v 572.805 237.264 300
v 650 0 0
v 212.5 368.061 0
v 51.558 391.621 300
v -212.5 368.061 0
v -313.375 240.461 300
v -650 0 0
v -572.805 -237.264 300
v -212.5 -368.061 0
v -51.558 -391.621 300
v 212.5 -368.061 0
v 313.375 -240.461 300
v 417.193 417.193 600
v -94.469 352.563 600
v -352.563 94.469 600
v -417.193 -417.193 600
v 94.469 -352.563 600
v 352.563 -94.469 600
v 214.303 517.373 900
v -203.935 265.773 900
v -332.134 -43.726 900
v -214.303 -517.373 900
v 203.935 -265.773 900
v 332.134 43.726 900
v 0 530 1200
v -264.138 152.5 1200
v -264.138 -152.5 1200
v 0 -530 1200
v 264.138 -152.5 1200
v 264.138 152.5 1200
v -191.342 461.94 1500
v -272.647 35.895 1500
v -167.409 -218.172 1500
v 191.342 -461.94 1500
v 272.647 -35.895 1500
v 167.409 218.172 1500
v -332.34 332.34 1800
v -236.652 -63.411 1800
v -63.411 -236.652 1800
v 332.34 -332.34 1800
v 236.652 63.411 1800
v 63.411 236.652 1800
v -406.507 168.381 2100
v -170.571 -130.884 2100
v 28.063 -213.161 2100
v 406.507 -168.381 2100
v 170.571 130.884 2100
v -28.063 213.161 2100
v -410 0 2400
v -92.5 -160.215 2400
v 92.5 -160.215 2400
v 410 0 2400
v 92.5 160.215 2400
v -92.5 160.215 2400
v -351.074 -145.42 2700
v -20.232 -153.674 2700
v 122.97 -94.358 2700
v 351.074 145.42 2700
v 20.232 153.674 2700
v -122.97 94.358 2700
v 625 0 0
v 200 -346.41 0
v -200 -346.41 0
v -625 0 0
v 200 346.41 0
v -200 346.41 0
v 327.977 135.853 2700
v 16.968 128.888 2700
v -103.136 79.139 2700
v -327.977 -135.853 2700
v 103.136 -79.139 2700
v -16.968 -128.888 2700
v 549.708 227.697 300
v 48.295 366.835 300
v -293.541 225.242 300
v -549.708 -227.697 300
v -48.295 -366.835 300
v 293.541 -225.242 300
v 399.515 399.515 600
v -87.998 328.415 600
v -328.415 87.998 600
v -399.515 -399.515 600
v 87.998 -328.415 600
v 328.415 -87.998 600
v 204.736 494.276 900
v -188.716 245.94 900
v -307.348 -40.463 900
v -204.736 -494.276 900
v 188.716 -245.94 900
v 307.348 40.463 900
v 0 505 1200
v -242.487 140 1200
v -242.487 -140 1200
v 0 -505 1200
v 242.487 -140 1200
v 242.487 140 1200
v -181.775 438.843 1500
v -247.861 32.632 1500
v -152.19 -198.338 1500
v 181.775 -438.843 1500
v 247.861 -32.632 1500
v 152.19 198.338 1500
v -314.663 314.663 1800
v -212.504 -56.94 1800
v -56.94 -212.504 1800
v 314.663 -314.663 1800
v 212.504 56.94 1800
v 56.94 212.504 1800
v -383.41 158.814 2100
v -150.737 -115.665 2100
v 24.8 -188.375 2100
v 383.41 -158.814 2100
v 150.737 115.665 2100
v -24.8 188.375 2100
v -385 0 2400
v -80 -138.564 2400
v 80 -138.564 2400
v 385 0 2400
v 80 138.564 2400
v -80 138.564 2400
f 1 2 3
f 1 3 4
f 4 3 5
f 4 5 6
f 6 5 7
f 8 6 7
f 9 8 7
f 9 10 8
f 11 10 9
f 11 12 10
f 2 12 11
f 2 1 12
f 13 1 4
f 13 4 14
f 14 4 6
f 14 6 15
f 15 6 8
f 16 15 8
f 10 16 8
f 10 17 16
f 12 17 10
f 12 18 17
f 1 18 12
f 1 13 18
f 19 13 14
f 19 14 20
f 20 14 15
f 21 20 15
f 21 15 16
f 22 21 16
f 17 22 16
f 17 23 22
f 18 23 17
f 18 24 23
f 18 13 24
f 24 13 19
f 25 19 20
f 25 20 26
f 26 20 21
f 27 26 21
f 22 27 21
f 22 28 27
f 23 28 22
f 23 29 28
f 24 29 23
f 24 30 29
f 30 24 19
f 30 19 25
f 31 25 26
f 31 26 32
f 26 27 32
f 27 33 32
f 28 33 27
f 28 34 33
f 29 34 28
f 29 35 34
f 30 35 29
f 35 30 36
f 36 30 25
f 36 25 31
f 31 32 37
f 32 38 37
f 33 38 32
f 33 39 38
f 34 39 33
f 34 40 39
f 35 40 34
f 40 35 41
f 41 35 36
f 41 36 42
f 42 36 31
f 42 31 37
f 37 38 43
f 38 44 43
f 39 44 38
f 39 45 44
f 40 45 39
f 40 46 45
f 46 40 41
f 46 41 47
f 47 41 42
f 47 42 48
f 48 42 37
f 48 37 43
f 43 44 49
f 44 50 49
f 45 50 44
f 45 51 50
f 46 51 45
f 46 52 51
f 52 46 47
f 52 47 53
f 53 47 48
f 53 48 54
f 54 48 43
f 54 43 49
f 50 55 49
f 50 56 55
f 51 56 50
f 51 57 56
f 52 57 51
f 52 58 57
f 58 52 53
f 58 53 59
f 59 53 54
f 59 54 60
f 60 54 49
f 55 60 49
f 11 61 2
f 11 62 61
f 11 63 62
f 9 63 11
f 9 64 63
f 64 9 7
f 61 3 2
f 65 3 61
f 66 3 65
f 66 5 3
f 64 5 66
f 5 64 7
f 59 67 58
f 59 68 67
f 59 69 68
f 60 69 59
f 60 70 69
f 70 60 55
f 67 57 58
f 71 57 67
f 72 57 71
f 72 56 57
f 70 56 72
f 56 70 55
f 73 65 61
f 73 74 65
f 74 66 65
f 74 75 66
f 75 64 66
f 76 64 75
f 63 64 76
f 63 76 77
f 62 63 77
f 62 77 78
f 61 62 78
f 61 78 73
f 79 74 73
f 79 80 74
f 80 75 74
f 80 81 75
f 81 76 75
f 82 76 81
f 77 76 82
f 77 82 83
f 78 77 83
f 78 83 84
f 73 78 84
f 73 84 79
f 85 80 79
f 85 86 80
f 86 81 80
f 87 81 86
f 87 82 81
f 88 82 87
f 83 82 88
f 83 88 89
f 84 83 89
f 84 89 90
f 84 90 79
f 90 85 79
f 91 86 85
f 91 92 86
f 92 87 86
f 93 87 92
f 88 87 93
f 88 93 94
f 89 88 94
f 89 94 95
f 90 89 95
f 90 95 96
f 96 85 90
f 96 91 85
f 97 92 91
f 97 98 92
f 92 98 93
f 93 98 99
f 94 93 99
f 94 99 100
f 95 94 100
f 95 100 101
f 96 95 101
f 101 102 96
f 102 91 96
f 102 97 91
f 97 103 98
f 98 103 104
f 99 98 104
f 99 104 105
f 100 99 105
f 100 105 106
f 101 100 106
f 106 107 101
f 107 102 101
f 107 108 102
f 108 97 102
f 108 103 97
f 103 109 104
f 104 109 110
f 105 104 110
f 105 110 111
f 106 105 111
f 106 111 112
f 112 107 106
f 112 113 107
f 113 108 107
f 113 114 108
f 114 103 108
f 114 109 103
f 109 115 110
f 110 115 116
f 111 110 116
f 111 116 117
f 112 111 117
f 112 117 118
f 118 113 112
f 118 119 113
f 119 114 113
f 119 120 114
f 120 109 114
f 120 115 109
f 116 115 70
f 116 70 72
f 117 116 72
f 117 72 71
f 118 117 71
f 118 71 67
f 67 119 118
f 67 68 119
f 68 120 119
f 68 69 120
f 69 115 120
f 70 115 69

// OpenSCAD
difference() {
	polyhedron(faces = [[0, 6, 1], [1, 6, 7], [1, 7, 2], [2, 7, 8], [2, 8, 3], [3, 8, 9], [3, 9, 4], [4, 9, 10], [4, 10, 5], [5, 10, 11], [5, 11, 0], [0, 11, 6], [6, 12, 7], [7, 12, 13], [7, 13, 8], [8, 13, 14], [8, 14, 9], [9, 14, 15], [9, 15, 10], [10, 15, 16], [10, 16, 11], [11, 16, 17], [11, 17, 6], [6, 17, 12], [12, 18, 13], [13, 18, 19], [13, 19, 14], [14, 19, 20], [14, 20, 15], [15, 20, 21], [15, 21, 16], [16, 21, 22], [16, 22, 17], [17, 22, 23], [17, 23, 12], [12, 23, 18], [18, 24, 19], [19, 24, 25], [19, 25, 20], [20, 25, 26], [20, 26, 21], [21, 26, 27], [21, 27, 22], [22, 27, 28], [22, 28, 23], [23, 28, 29], [23, 29, 18], [18, 29, 24], [24, 30, 25], [25, 30, 31], [25, 31, 26], [26, 31, 32], [26, 32, 27], [27, 32, 33], [27, 33, 28], [28, 33, 34], [28, 34, 29], [29, 34, 35], [29, 35, 24], [24, 35, 30], [30, 36, 31], [31, 36, 37], [31, 37, 32], [32, 37, 38], [32, 38, 33], [33, 38, 39], [33, 39, 34], [34, 39, 40], [34, 40, 35], [35, 40, 41], [35, 41, 30], [30, 41, 36], [36, 42, 37], [37, 42, 43], [37, 43, 38], [38, 43, 44], [38, 44, 39], [39, 44, 45], [39, 45, 40], [40, 45, 46], [40, 46, 41], [41, 46, 47], [41, 47, 36], [36, 47, 42], [42, 48, 43], [43, 48, 49], [43, 49, 44], [44, 49, 50], [44, 50, 45], [45, 50, 51], [45, 51, 46], [46, 51, 52], [46, 52, 47], [47, 52, 53], [47, 53, 42], [42, 53, 48], [48, 54, 49], [49, 54, 55], [49, 55, 50], [50, 55, 56], [50, 56, 51], [51, 56, 57], [51, 57, 52], [52, 57, 58], [52, 58, 53], [53, 58, 59], [53, 59, 48], [48, 59, 54], [1, 60, 0], [54, 61, 55], [2, 60, 1], [55, 61, 56], [3, 60, 2], [56, 61, 57], [4, 60, 3], [57, 61, 58], [5, 60, 4], [58, 61, 59], [0, 60, 5], [59, 61, 54]], points = [[650.0000000000, 0.0000000000, 0.0000000000], [212.5000000000, 368.0607966084, 0.0000000000], [-212.5000000000, 368.0607966084, 0.0000000000], [-650.0000000000, 0.0000000000, 0.0000000000], [-212.5000000000, -368.0607966084, 0.0000000000], [212.5000000000, -368.0607966084, 0.0000000000], [572.8053101570, 237.2637280664, 300.0000000000], [51.5578459269, 391.6207202427, 300.0000000000], [-313.3745694150, 240.4607644584, 300.0000000000], [-572.8053101570, -237.2637280664, 300.0000000000], [-51.5578459269, -391.6207202427, 300.0000000000], [313.3745694150, -240.4607644584, 300.0000000000], [417.1930009001, 417.1930009001, 600.0000000000], [-94.4689514624, 352.5629265955, 600.0000000000], [-352.5629265955, 94.4689514624, 600.0000000000], [-417.1930009001, -417.1930009001, 600.0000000000], [94.4689514624, -352.5629265955, 600.0000000000], [352.5629265955, -94.4689514624, 600.0000000000], [214.3027221245, 517.3725382063, 900.0000000000], [-203.9350787179, 265.7733689976, 900.0000000000], [-332.1340285602, -43.7262743937, 900.0000000000], [-214.3027221245, -517.3725382063, 900.0000000000], [203.9350787179, -265.7733689976, 900.0000000000], [332.1340285602, 43.7262743937, 900.0000000000], [0.0000000000, 530.0000000000, 1200.0000000000], [-264.1377481543, 152.5000000000, 1200.0000000000], [-264.1377481543, -152.5000000000, 1200.0000000000], [-0.0000000000, -530.0000000000, 1200.0000000000], [264.1377481543, -152.5000000000, 1200.0000000000], [264.1377481543, 152.5000000000, 1200.0000000000], [-191.3417161825, 461.9397662556, 1500.0000000000], [-272.6473368778, 35.8947028605, 1500.0000000000], [-167.4093929774, -218.1721685801, 1500.0000000000], [191.3417161825, -461.9397662556, 1500.0000000000], [272.6473368778, -35.8947028605, 1500.0000000000], [167.4093929774, 218.1721685801, 1500.0000000000], [-332.3401871577, 332.3401871577, 1800.0000000000], [-236.6518274408, -63.4106660501, 1800.0000000000], [-63.4106660501, -236.6518274408, 1800.0000000000], [332.3401871577, -332.3401871577, 1800.0000000000], [236.6518274408, 63.4106660501, 1800.0000000000], [63.4106660501, 236.6518274408, 1800.0000000000], [-406.5069943050, 168.3807102406, 2100.0000000000], [-170.5709681626, -130.8837072369, 2100.0000000000], [28.0631313273, -213.1606451954, 2100.0000000000], [406.5069943050, -168.3807102406, 2100.0000000000], [170.5709681626, 130.8837072369, 2100.0000000000], [-28.0631313273, 213.1606451954, 2100.0000000000], [-410.0000000000, 0.0000000000, 2400.0000000000], [-92.5000000000, -160.2146997001, 2400.0000000000], [92.5000000000, -160.2146997001, 2400.0000000000], [410.0000000000, -0.0000000000, 2400.0000000000], [92.5000000000, 160.2146997001, 2400.0000000000], [-92.5000000000, 160.2146997001, 2400.0000000000], [-351.0742223543, -145.4197042987, 2700.0000000000], [-20.2315597941, -153.6739535129, 2700.0000000000], [122.9697677451, -94.3580214964, 2700.0000000000], [351.0742223543, 145.4197042987, 2700.0000000000], [20.2315597941, 153.6739535129, 2700.0000000000], [-122.9697677451, 94.3580214964, 2700.0000000000], [-0.0000000000, 0.0000000000, 0.0000000000], [0.0000000000, 0.0000000000, 2700.0000000000]]);
	polyhedron(faces = [[0, 6, 1], [1, 6, 7], [1, 7, 2], [2, 7, 8], [2, 8, 3], [3, 8, 9], [3, 9, 4], [4, 9, 10], [4, 10, 5], [5, 10, 11], [5, 11, 0], [0, 11, 6], [6, 12, 7], [7, 12, 13], [7, 13, 8], [8, 13, 14], [8, 14, 9], [9, 14, 15], [9, 15, 10], [10, 15, 16], [10, 16, 11], [11, 16, 17], [11, 17, 6], [6, 17, 12], [12, 18, 13], [13, 18, 19], [13, 19, 14], [14, 19, 20], [14, 20, 15], [15, 20, 21], [15, 21, 16], [16, 21, 22], [16, 22, 17], [17, 22, 23], [17, 23, 12], [12, 23, 18], [18, 24, 19], [19, 24, 25], [19, 25, 20], [20, 25, 26], [20, 26, 21], [21, 26, 27], [21, 27, 22], [22, 27, 28], [22, 28, 23], [23, 28, 29], [23, 29, 18], [18, 29, 24], [24, 30, 25], [25, 30, 31], [25, 31, 26], [26, 31, 32], [26, 32, 27], [27, 32, 33], [27, 33, 28], [28, 33, 34], [28, 34, 29], [29, 34, 35], [29, 35, 24], [24, 35, 30], [30, 36, 31], [31, 36, 37], [31, 37, 32], [32, 37, 38], [32, 38, 33], [33, 38, 39], [33, 39, 34], [34, 39, 40], [34, 40, 35], [35, 40, 41], [35, 41, 30], [30, 41, 36], [36, 42, 37], [37, 42, 43], [37, 43, 38], [38, 43, 44], [38, 44, 39], [39, 44, 45], [39, 45, 40], [40, 45, 46], [40, 46, 41], [41, 46, 47], [41, 47, 36], [36, 47, 42], [42, 48, 43], [43, 48, 49], [43, 49, 44], [44, 49, 50], [44, 50, 45], [45, 50, 51], [45, 51, 46], [46, 51, 52], [46, 52, 47], [47, 52, 53], [47, 53, 42], [42, 53, 48], [48, 54, 49], [49, 54, 55], [49, 55, 50], [50, 55, 56], [50, 56, 51], [51, 56, 57], [51, 57, 52], [52, 57, 58], [52, 58, 53], [53, 58, 59], [53, 59, 48], [48, 59, 54], [1, 60, 0], [54, 61, 55], [2, 60, 1], [55, 61, 56], [3, 60, 2], [56, 61, 57], [4, 60, 3], [57, 61, 58], [5, 60, 4], [58, 61, 59], [0, 60, 5], [59, 61, 54]], points = [[625.0000000000, 0.0000000000, 0.0000000000], [200.0000000000, 346.4101615138, 0.0000000000], [-200.0000000000, 346.4101615138, 0.0000000000], [-625.0000000000, 0.0000000000, 0.0000000000], [-200.0000000000, -346.4101615138, 0.0000000000], [200.0000000000, -346.4101615138, 0.0000000000], [549.7083218442, 227.6966422572, 300.0000000000], [48.2946911214, 366.8345987083, 300.0000000000], [-293.5407359078, 225.2417287332, 300.0000000000], [-549.7083218442, -227.6966422572, 300.0000000000], [-48.2946911214, -366.8345987083, 300.0000000000], [293.5407359078, -225.2417287332, 300.0000000000], [399.5153313704, 399.5153313704, 600.0000000000], [-87.9984753349, 328.4147809383, 600.0000000000], [-328.4147809383, 87.9984753349, 600.0000000000], [-399.5153313704, -399.5153313704, 600.0000000000], [87.9984753349, -328.4147809383, 600.0000000000], [328.4147809383, -87.9984753349, 600.0000000000], [204.7356363153, 494.2755498935, 900.0000000000], [-188.7160429927, 245.9395354903, 900.0000000000], [-307.3479070259, -40.4631195882, 900.0000000000], [-204.7356363153, -494.2755498935, 900.0000000000], [188.7160429927, -245.9395354903, 900.0000000000], [307.3479070259, 40.4631195882, 900.0000000000], [0.0000000000, 505.0000000000, 1200.0000000000], [-242.4871130596, 140.0000000000, 1200.0000000000], [-242.4871130596, -140.0000000000, 1200.0000000000], [-0.0000000000, -505.0000000000, 1200.0000000000], [242.4871130596, -140.0000000000, 1200.0000000000], [242.4871130596, 140.0000000000, 1200.0000000000], [-181.7746303734, 438.8427779429, 1500.0000000000], [-247.8612153435, 32.6315480550, 1500.0000000000], [-152.1903572522, -198.3383350728, 1500.0000000000], [181.7746303734, -438.8427779429, 1500.0000000000], [247.8612153435, -32.6315480550, 1500.0000000000], [152.1903572522, 198.3383350728, 1500.0000000000], [-314.6625176280, 314.6625176280, 1800.0000000000], [-212.5036817836, -56.9401899226, 1800.0000000000], [-56.9401899226, -212.5036817836, 1800.0000000000], [314.6625176280, -314.6625176280, 1800.0000000000], [212.5036817836, 56.9401899226, 1800.0000000000], [56.9401899226, 212.5036817836, 1800.0000000000], [-383.4100059922, 158.8136244315, 2100.0000000000], [-150.7371346553, -115.6646715117, 2100.0000000000], [24.7999765218, -188.3745236610, 2100.0000000000], [383.4100059922, -158.8136244315, 2100.0000000000], [150.7371346553, 115.6646715117, 2100.0000000000], [-24.7999765218, 188.3745236610, 2100.0000000000], [-385.0000000000, 0.0000000000, 2400.0000000000], [-80.0000000000, -138.5640646055, 2400.0000000000], [80.0000000000, -138.5640646055, 2400.0000000000], [385.0000000000, -0.0000000000, 2400.0000000000], [80.0000000000, 138.5640646055, 2400.0000000000], [-80.0000000000, 138.5640646055, 2400.0000000000], [-327.9772340415, -135.8526184896, 2700.0000000000], [-16.9684049886, -128.8878319786, 2700.0000000000], [103.1359342379, -79.1389857711, 2700.0000000000], [327.9772340415, 135.8526184896, 2700.0000000000], [16.9684049886, 128.8878319786, 2700.0000000000], [-103.1359342379, 79.1389857711, 2700.0000000000], [-0.0000000000, 0.0000000000, 0.0000000000], [0.0000000000, 0.0000000000, 2700.0000000000]]);
}
